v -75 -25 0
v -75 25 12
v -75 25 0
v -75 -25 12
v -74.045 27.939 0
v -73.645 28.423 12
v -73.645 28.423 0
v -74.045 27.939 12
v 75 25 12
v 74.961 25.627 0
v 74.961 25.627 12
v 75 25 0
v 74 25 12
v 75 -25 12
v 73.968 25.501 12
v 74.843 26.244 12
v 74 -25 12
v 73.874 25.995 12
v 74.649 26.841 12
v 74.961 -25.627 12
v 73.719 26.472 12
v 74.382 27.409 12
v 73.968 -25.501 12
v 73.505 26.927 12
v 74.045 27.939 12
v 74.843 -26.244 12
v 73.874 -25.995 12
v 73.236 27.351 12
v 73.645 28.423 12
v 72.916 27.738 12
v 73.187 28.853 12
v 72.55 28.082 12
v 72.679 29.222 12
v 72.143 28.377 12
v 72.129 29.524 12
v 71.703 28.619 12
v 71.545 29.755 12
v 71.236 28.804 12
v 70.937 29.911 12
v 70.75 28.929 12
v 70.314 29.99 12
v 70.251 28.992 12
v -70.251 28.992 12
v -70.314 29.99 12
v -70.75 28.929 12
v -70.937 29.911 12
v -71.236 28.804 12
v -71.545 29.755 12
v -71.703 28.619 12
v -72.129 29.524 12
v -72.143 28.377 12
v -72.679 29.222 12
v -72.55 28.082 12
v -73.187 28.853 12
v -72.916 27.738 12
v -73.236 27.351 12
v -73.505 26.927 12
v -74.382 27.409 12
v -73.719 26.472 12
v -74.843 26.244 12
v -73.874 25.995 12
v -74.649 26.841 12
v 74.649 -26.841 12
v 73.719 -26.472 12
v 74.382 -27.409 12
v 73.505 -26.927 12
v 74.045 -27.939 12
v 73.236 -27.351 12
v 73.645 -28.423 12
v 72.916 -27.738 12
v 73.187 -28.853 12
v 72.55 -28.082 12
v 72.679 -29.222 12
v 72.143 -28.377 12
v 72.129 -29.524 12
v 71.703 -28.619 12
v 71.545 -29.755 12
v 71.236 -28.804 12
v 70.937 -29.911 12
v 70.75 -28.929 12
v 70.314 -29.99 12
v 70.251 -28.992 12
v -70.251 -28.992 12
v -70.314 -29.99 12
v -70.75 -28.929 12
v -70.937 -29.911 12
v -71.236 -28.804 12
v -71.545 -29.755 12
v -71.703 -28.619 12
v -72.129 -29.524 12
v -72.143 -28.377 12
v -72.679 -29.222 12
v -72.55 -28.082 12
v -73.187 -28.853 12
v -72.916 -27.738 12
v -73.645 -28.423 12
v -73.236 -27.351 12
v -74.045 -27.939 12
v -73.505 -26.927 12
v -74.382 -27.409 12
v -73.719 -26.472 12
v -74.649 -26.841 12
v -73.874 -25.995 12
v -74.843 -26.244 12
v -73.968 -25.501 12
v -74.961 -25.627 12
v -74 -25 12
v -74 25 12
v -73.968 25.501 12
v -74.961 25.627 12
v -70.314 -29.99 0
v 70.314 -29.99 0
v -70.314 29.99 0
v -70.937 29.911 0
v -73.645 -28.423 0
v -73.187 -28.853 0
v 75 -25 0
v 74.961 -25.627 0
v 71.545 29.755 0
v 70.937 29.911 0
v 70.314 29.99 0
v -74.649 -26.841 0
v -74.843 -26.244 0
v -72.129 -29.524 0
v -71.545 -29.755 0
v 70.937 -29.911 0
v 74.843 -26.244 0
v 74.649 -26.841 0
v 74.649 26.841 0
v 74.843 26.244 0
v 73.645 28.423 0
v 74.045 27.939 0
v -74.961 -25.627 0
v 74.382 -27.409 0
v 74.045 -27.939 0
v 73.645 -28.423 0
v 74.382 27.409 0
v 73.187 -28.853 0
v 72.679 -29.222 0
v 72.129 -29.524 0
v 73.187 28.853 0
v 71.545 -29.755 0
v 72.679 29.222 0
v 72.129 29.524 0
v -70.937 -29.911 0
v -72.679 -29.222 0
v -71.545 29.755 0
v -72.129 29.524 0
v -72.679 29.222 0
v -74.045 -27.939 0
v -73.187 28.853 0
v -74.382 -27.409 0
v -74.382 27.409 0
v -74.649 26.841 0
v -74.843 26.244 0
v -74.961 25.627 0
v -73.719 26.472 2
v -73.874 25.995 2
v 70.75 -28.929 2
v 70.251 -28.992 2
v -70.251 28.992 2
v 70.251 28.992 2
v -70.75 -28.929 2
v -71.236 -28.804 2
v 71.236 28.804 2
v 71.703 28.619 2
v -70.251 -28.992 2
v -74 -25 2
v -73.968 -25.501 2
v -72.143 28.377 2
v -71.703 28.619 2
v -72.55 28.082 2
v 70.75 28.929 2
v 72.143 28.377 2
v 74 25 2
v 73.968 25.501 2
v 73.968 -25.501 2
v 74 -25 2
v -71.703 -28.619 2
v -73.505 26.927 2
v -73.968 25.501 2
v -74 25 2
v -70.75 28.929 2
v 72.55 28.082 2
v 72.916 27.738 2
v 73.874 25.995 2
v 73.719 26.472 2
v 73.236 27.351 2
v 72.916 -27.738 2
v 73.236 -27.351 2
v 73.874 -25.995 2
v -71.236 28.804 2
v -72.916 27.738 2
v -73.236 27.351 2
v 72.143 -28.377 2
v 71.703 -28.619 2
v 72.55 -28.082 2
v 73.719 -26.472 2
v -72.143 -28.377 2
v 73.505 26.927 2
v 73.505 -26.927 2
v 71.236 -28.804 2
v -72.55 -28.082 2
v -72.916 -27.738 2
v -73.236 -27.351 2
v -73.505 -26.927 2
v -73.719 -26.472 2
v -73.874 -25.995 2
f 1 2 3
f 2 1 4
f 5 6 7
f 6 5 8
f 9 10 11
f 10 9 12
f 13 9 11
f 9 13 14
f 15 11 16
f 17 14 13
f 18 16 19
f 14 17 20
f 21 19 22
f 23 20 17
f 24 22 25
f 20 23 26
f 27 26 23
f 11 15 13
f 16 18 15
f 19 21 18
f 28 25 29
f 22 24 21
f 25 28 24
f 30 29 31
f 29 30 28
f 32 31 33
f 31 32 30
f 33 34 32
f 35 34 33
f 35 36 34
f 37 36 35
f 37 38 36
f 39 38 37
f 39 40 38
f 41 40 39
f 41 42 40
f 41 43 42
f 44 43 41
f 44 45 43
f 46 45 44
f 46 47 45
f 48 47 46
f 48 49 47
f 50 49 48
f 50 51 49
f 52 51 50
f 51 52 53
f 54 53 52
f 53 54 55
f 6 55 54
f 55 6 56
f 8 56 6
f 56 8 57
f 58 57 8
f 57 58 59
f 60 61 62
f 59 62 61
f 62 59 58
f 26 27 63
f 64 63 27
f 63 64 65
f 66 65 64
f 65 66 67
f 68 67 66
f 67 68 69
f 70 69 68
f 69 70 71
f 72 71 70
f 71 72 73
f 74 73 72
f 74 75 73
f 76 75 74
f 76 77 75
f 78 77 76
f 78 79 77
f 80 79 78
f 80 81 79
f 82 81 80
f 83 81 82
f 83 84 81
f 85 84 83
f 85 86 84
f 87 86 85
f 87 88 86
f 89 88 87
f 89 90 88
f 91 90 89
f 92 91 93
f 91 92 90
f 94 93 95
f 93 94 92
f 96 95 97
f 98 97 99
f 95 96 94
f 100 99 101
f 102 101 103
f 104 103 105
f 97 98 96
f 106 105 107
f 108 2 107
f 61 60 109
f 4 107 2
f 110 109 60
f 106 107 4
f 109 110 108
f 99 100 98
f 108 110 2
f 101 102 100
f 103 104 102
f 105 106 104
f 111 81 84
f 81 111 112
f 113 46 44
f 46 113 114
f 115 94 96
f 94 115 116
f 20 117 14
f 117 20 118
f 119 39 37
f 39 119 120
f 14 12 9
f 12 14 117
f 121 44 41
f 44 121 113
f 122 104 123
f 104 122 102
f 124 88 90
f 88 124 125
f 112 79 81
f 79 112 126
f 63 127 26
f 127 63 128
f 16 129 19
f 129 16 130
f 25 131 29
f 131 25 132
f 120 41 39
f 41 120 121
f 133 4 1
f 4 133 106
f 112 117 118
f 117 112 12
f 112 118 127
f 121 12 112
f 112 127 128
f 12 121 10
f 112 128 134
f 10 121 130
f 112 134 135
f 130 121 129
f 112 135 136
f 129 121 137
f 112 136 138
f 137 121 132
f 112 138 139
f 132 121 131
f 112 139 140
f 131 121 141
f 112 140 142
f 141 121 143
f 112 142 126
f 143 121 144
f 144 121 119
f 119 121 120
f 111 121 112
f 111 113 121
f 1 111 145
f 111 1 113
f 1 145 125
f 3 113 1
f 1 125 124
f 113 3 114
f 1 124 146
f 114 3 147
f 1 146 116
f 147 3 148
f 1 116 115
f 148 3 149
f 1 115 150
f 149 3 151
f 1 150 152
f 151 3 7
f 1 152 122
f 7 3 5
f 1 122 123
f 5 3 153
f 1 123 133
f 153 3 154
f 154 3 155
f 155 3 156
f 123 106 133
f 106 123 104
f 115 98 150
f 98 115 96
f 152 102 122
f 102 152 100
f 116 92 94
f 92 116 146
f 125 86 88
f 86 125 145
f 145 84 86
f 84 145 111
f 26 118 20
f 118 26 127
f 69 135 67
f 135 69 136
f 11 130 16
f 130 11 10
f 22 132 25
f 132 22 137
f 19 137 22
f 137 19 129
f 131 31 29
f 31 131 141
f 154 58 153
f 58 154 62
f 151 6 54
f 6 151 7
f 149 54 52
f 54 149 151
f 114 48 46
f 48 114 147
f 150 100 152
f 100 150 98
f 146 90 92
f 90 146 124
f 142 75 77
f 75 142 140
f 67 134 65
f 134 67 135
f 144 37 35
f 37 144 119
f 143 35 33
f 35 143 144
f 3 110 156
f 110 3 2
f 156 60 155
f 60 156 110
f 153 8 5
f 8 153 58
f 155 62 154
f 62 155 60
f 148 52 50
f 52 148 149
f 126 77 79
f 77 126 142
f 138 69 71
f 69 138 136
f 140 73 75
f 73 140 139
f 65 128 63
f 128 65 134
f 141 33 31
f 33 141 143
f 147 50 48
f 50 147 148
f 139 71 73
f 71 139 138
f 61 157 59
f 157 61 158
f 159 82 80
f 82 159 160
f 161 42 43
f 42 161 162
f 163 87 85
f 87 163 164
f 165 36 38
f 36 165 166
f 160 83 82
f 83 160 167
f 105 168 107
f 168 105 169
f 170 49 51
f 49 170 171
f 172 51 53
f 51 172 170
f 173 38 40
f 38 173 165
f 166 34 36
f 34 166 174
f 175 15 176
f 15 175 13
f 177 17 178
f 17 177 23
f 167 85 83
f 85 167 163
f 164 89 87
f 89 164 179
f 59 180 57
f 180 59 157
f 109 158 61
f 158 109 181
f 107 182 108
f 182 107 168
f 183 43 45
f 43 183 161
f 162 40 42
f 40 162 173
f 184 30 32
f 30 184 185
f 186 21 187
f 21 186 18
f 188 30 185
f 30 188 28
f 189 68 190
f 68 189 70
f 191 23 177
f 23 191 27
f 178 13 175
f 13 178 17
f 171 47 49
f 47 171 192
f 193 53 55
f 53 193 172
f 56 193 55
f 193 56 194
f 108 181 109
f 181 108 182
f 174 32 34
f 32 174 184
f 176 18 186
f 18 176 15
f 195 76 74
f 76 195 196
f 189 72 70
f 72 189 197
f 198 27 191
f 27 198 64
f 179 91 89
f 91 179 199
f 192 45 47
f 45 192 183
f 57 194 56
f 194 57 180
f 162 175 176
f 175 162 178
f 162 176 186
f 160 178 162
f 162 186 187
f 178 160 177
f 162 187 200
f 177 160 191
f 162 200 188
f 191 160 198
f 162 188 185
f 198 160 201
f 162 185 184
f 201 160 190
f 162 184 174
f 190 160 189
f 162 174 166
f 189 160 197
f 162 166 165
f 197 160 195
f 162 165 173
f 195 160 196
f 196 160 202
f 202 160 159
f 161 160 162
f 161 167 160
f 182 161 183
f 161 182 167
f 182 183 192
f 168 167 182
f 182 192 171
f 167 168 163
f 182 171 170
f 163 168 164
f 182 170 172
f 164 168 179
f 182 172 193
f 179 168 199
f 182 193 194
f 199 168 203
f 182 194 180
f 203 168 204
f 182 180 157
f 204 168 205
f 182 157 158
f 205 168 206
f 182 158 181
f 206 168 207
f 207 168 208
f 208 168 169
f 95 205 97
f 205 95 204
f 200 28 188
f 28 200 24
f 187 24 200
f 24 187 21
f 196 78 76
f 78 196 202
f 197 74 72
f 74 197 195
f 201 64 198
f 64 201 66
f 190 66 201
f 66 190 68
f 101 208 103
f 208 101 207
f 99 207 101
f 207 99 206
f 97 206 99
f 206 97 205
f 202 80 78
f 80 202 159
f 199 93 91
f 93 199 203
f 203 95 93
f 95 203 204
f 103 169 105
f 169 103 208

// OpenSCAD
$fn = 50;


difference() {
	union() {
		hull() {
			translate(v = [-70.0000000000, 25.0000000000, 0]) {
				cylinder(h = 12, r = 5);
			}
			translate(v = [70.0000000000, 25.0000000000, 0]) {
				cylinder(h = 12, r = 5);
			}
			translate(v = [-70.0000000000, -25.0000000000, 0]) {
				cylinder(h = 12, r = 5);
			}
			translate(v = [70.0000000000, -25.0000000000, 0]) {
				cylinder(h = 12, r = 5);
			}
		}
	}
	union() {
		translate(v = [0, 0, 2]) {
			hull() {
				translate(v = [-70.0000000000, 25.0000000000, 0]) {
					cylinder(h = 10, r = 4);
				}
				translate(v = [70.0000000000, 25.0000000000, 0]) {
					cylinder(h = 10, r = 4);
				}
				translate(v = [-70.0000000000, -25.0000000000, 0]) {
					cylinder(h = 10, r = 4);
				}
				translate(v = [70.0000000000, -25.0000000000, 0]) {
					cylinder(h = 10, r = 4);
				}
			}
		}
	}
}
